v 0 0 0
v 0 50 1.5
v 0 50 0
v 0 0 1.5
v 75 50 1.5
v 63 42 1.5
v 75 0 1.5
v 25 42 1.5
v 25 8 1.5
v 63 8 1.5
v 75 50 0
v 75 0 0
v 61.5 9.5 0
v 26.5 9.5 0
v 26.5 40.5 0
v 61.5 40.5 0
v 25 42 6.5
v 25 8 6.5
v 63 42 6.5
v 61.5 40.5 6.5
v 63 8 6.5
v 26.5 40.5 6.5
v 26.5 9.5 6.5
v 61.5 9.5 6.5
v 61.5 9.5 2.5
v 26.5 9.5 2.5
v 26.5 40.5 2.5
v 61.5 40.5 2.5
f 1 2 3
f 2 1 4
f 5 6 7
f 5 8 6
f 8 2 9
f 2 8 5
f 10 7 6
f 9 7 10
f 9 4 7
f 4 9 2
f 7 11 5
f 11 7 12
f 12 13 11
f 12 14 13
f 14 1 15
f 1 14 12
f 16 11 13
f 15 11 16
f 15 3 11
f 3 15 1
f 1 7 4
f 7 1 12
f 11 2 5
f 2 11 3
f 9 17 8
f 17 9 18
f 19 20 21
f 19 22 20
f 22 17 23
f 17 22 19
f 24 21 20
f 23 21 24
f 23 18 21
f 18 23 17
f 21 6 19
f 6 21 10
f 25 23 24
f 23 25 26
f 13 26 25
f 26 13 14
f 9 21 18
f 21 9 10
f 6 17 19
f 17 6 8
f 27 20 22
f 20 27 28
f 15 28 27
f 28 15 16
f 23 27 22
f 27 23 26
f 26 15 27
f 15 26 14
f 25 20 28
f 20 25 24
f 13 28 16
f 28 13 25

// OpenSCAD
// TFT display helper

width = 75.0;
height = 50.0;

wall_thickness = 1.5;
depth = 5.0 + wall_thickness;

cutout_width = 35.0;
cutout_height = 31.0;

bottom_left_x = 75.0 - 38.0 - 12.0;
bottom_left_y = (50.0 - (cutout_height + 2 * wall_thickness)) / 2;

difference () {
    union() {
        cube([width, height, wall_thickness]);
        translate([bottom_left_x, bottom_left_y, 0]) cube([cutout_width + 2 *wall_thickness, wall_thickness, depth]);
        translate([bottom_left_x, bottom_left_y + cutout_height + wall_thickness, 0]) cube([cutout_width + 2 *wall_thickness, wall_thickness, depth]);
        translate([bottom_left_x, bottom_left_y, 0]) cube([wall_thickness, cutout_height + wall_thickness, depth]);
        translate([bottom_left_x + cutout_width + wall_thickness, bottom_left_y, 0]) cube([wall_thickness, cutout_height + wall_thickness, depth]);
    }
    translate([bottom_left_x + wall_thickness, bottom_left_y + wall_thickness, -1.0]) cube([cutout_width, cutout_height, wall_thickness + 2.0]);
}
